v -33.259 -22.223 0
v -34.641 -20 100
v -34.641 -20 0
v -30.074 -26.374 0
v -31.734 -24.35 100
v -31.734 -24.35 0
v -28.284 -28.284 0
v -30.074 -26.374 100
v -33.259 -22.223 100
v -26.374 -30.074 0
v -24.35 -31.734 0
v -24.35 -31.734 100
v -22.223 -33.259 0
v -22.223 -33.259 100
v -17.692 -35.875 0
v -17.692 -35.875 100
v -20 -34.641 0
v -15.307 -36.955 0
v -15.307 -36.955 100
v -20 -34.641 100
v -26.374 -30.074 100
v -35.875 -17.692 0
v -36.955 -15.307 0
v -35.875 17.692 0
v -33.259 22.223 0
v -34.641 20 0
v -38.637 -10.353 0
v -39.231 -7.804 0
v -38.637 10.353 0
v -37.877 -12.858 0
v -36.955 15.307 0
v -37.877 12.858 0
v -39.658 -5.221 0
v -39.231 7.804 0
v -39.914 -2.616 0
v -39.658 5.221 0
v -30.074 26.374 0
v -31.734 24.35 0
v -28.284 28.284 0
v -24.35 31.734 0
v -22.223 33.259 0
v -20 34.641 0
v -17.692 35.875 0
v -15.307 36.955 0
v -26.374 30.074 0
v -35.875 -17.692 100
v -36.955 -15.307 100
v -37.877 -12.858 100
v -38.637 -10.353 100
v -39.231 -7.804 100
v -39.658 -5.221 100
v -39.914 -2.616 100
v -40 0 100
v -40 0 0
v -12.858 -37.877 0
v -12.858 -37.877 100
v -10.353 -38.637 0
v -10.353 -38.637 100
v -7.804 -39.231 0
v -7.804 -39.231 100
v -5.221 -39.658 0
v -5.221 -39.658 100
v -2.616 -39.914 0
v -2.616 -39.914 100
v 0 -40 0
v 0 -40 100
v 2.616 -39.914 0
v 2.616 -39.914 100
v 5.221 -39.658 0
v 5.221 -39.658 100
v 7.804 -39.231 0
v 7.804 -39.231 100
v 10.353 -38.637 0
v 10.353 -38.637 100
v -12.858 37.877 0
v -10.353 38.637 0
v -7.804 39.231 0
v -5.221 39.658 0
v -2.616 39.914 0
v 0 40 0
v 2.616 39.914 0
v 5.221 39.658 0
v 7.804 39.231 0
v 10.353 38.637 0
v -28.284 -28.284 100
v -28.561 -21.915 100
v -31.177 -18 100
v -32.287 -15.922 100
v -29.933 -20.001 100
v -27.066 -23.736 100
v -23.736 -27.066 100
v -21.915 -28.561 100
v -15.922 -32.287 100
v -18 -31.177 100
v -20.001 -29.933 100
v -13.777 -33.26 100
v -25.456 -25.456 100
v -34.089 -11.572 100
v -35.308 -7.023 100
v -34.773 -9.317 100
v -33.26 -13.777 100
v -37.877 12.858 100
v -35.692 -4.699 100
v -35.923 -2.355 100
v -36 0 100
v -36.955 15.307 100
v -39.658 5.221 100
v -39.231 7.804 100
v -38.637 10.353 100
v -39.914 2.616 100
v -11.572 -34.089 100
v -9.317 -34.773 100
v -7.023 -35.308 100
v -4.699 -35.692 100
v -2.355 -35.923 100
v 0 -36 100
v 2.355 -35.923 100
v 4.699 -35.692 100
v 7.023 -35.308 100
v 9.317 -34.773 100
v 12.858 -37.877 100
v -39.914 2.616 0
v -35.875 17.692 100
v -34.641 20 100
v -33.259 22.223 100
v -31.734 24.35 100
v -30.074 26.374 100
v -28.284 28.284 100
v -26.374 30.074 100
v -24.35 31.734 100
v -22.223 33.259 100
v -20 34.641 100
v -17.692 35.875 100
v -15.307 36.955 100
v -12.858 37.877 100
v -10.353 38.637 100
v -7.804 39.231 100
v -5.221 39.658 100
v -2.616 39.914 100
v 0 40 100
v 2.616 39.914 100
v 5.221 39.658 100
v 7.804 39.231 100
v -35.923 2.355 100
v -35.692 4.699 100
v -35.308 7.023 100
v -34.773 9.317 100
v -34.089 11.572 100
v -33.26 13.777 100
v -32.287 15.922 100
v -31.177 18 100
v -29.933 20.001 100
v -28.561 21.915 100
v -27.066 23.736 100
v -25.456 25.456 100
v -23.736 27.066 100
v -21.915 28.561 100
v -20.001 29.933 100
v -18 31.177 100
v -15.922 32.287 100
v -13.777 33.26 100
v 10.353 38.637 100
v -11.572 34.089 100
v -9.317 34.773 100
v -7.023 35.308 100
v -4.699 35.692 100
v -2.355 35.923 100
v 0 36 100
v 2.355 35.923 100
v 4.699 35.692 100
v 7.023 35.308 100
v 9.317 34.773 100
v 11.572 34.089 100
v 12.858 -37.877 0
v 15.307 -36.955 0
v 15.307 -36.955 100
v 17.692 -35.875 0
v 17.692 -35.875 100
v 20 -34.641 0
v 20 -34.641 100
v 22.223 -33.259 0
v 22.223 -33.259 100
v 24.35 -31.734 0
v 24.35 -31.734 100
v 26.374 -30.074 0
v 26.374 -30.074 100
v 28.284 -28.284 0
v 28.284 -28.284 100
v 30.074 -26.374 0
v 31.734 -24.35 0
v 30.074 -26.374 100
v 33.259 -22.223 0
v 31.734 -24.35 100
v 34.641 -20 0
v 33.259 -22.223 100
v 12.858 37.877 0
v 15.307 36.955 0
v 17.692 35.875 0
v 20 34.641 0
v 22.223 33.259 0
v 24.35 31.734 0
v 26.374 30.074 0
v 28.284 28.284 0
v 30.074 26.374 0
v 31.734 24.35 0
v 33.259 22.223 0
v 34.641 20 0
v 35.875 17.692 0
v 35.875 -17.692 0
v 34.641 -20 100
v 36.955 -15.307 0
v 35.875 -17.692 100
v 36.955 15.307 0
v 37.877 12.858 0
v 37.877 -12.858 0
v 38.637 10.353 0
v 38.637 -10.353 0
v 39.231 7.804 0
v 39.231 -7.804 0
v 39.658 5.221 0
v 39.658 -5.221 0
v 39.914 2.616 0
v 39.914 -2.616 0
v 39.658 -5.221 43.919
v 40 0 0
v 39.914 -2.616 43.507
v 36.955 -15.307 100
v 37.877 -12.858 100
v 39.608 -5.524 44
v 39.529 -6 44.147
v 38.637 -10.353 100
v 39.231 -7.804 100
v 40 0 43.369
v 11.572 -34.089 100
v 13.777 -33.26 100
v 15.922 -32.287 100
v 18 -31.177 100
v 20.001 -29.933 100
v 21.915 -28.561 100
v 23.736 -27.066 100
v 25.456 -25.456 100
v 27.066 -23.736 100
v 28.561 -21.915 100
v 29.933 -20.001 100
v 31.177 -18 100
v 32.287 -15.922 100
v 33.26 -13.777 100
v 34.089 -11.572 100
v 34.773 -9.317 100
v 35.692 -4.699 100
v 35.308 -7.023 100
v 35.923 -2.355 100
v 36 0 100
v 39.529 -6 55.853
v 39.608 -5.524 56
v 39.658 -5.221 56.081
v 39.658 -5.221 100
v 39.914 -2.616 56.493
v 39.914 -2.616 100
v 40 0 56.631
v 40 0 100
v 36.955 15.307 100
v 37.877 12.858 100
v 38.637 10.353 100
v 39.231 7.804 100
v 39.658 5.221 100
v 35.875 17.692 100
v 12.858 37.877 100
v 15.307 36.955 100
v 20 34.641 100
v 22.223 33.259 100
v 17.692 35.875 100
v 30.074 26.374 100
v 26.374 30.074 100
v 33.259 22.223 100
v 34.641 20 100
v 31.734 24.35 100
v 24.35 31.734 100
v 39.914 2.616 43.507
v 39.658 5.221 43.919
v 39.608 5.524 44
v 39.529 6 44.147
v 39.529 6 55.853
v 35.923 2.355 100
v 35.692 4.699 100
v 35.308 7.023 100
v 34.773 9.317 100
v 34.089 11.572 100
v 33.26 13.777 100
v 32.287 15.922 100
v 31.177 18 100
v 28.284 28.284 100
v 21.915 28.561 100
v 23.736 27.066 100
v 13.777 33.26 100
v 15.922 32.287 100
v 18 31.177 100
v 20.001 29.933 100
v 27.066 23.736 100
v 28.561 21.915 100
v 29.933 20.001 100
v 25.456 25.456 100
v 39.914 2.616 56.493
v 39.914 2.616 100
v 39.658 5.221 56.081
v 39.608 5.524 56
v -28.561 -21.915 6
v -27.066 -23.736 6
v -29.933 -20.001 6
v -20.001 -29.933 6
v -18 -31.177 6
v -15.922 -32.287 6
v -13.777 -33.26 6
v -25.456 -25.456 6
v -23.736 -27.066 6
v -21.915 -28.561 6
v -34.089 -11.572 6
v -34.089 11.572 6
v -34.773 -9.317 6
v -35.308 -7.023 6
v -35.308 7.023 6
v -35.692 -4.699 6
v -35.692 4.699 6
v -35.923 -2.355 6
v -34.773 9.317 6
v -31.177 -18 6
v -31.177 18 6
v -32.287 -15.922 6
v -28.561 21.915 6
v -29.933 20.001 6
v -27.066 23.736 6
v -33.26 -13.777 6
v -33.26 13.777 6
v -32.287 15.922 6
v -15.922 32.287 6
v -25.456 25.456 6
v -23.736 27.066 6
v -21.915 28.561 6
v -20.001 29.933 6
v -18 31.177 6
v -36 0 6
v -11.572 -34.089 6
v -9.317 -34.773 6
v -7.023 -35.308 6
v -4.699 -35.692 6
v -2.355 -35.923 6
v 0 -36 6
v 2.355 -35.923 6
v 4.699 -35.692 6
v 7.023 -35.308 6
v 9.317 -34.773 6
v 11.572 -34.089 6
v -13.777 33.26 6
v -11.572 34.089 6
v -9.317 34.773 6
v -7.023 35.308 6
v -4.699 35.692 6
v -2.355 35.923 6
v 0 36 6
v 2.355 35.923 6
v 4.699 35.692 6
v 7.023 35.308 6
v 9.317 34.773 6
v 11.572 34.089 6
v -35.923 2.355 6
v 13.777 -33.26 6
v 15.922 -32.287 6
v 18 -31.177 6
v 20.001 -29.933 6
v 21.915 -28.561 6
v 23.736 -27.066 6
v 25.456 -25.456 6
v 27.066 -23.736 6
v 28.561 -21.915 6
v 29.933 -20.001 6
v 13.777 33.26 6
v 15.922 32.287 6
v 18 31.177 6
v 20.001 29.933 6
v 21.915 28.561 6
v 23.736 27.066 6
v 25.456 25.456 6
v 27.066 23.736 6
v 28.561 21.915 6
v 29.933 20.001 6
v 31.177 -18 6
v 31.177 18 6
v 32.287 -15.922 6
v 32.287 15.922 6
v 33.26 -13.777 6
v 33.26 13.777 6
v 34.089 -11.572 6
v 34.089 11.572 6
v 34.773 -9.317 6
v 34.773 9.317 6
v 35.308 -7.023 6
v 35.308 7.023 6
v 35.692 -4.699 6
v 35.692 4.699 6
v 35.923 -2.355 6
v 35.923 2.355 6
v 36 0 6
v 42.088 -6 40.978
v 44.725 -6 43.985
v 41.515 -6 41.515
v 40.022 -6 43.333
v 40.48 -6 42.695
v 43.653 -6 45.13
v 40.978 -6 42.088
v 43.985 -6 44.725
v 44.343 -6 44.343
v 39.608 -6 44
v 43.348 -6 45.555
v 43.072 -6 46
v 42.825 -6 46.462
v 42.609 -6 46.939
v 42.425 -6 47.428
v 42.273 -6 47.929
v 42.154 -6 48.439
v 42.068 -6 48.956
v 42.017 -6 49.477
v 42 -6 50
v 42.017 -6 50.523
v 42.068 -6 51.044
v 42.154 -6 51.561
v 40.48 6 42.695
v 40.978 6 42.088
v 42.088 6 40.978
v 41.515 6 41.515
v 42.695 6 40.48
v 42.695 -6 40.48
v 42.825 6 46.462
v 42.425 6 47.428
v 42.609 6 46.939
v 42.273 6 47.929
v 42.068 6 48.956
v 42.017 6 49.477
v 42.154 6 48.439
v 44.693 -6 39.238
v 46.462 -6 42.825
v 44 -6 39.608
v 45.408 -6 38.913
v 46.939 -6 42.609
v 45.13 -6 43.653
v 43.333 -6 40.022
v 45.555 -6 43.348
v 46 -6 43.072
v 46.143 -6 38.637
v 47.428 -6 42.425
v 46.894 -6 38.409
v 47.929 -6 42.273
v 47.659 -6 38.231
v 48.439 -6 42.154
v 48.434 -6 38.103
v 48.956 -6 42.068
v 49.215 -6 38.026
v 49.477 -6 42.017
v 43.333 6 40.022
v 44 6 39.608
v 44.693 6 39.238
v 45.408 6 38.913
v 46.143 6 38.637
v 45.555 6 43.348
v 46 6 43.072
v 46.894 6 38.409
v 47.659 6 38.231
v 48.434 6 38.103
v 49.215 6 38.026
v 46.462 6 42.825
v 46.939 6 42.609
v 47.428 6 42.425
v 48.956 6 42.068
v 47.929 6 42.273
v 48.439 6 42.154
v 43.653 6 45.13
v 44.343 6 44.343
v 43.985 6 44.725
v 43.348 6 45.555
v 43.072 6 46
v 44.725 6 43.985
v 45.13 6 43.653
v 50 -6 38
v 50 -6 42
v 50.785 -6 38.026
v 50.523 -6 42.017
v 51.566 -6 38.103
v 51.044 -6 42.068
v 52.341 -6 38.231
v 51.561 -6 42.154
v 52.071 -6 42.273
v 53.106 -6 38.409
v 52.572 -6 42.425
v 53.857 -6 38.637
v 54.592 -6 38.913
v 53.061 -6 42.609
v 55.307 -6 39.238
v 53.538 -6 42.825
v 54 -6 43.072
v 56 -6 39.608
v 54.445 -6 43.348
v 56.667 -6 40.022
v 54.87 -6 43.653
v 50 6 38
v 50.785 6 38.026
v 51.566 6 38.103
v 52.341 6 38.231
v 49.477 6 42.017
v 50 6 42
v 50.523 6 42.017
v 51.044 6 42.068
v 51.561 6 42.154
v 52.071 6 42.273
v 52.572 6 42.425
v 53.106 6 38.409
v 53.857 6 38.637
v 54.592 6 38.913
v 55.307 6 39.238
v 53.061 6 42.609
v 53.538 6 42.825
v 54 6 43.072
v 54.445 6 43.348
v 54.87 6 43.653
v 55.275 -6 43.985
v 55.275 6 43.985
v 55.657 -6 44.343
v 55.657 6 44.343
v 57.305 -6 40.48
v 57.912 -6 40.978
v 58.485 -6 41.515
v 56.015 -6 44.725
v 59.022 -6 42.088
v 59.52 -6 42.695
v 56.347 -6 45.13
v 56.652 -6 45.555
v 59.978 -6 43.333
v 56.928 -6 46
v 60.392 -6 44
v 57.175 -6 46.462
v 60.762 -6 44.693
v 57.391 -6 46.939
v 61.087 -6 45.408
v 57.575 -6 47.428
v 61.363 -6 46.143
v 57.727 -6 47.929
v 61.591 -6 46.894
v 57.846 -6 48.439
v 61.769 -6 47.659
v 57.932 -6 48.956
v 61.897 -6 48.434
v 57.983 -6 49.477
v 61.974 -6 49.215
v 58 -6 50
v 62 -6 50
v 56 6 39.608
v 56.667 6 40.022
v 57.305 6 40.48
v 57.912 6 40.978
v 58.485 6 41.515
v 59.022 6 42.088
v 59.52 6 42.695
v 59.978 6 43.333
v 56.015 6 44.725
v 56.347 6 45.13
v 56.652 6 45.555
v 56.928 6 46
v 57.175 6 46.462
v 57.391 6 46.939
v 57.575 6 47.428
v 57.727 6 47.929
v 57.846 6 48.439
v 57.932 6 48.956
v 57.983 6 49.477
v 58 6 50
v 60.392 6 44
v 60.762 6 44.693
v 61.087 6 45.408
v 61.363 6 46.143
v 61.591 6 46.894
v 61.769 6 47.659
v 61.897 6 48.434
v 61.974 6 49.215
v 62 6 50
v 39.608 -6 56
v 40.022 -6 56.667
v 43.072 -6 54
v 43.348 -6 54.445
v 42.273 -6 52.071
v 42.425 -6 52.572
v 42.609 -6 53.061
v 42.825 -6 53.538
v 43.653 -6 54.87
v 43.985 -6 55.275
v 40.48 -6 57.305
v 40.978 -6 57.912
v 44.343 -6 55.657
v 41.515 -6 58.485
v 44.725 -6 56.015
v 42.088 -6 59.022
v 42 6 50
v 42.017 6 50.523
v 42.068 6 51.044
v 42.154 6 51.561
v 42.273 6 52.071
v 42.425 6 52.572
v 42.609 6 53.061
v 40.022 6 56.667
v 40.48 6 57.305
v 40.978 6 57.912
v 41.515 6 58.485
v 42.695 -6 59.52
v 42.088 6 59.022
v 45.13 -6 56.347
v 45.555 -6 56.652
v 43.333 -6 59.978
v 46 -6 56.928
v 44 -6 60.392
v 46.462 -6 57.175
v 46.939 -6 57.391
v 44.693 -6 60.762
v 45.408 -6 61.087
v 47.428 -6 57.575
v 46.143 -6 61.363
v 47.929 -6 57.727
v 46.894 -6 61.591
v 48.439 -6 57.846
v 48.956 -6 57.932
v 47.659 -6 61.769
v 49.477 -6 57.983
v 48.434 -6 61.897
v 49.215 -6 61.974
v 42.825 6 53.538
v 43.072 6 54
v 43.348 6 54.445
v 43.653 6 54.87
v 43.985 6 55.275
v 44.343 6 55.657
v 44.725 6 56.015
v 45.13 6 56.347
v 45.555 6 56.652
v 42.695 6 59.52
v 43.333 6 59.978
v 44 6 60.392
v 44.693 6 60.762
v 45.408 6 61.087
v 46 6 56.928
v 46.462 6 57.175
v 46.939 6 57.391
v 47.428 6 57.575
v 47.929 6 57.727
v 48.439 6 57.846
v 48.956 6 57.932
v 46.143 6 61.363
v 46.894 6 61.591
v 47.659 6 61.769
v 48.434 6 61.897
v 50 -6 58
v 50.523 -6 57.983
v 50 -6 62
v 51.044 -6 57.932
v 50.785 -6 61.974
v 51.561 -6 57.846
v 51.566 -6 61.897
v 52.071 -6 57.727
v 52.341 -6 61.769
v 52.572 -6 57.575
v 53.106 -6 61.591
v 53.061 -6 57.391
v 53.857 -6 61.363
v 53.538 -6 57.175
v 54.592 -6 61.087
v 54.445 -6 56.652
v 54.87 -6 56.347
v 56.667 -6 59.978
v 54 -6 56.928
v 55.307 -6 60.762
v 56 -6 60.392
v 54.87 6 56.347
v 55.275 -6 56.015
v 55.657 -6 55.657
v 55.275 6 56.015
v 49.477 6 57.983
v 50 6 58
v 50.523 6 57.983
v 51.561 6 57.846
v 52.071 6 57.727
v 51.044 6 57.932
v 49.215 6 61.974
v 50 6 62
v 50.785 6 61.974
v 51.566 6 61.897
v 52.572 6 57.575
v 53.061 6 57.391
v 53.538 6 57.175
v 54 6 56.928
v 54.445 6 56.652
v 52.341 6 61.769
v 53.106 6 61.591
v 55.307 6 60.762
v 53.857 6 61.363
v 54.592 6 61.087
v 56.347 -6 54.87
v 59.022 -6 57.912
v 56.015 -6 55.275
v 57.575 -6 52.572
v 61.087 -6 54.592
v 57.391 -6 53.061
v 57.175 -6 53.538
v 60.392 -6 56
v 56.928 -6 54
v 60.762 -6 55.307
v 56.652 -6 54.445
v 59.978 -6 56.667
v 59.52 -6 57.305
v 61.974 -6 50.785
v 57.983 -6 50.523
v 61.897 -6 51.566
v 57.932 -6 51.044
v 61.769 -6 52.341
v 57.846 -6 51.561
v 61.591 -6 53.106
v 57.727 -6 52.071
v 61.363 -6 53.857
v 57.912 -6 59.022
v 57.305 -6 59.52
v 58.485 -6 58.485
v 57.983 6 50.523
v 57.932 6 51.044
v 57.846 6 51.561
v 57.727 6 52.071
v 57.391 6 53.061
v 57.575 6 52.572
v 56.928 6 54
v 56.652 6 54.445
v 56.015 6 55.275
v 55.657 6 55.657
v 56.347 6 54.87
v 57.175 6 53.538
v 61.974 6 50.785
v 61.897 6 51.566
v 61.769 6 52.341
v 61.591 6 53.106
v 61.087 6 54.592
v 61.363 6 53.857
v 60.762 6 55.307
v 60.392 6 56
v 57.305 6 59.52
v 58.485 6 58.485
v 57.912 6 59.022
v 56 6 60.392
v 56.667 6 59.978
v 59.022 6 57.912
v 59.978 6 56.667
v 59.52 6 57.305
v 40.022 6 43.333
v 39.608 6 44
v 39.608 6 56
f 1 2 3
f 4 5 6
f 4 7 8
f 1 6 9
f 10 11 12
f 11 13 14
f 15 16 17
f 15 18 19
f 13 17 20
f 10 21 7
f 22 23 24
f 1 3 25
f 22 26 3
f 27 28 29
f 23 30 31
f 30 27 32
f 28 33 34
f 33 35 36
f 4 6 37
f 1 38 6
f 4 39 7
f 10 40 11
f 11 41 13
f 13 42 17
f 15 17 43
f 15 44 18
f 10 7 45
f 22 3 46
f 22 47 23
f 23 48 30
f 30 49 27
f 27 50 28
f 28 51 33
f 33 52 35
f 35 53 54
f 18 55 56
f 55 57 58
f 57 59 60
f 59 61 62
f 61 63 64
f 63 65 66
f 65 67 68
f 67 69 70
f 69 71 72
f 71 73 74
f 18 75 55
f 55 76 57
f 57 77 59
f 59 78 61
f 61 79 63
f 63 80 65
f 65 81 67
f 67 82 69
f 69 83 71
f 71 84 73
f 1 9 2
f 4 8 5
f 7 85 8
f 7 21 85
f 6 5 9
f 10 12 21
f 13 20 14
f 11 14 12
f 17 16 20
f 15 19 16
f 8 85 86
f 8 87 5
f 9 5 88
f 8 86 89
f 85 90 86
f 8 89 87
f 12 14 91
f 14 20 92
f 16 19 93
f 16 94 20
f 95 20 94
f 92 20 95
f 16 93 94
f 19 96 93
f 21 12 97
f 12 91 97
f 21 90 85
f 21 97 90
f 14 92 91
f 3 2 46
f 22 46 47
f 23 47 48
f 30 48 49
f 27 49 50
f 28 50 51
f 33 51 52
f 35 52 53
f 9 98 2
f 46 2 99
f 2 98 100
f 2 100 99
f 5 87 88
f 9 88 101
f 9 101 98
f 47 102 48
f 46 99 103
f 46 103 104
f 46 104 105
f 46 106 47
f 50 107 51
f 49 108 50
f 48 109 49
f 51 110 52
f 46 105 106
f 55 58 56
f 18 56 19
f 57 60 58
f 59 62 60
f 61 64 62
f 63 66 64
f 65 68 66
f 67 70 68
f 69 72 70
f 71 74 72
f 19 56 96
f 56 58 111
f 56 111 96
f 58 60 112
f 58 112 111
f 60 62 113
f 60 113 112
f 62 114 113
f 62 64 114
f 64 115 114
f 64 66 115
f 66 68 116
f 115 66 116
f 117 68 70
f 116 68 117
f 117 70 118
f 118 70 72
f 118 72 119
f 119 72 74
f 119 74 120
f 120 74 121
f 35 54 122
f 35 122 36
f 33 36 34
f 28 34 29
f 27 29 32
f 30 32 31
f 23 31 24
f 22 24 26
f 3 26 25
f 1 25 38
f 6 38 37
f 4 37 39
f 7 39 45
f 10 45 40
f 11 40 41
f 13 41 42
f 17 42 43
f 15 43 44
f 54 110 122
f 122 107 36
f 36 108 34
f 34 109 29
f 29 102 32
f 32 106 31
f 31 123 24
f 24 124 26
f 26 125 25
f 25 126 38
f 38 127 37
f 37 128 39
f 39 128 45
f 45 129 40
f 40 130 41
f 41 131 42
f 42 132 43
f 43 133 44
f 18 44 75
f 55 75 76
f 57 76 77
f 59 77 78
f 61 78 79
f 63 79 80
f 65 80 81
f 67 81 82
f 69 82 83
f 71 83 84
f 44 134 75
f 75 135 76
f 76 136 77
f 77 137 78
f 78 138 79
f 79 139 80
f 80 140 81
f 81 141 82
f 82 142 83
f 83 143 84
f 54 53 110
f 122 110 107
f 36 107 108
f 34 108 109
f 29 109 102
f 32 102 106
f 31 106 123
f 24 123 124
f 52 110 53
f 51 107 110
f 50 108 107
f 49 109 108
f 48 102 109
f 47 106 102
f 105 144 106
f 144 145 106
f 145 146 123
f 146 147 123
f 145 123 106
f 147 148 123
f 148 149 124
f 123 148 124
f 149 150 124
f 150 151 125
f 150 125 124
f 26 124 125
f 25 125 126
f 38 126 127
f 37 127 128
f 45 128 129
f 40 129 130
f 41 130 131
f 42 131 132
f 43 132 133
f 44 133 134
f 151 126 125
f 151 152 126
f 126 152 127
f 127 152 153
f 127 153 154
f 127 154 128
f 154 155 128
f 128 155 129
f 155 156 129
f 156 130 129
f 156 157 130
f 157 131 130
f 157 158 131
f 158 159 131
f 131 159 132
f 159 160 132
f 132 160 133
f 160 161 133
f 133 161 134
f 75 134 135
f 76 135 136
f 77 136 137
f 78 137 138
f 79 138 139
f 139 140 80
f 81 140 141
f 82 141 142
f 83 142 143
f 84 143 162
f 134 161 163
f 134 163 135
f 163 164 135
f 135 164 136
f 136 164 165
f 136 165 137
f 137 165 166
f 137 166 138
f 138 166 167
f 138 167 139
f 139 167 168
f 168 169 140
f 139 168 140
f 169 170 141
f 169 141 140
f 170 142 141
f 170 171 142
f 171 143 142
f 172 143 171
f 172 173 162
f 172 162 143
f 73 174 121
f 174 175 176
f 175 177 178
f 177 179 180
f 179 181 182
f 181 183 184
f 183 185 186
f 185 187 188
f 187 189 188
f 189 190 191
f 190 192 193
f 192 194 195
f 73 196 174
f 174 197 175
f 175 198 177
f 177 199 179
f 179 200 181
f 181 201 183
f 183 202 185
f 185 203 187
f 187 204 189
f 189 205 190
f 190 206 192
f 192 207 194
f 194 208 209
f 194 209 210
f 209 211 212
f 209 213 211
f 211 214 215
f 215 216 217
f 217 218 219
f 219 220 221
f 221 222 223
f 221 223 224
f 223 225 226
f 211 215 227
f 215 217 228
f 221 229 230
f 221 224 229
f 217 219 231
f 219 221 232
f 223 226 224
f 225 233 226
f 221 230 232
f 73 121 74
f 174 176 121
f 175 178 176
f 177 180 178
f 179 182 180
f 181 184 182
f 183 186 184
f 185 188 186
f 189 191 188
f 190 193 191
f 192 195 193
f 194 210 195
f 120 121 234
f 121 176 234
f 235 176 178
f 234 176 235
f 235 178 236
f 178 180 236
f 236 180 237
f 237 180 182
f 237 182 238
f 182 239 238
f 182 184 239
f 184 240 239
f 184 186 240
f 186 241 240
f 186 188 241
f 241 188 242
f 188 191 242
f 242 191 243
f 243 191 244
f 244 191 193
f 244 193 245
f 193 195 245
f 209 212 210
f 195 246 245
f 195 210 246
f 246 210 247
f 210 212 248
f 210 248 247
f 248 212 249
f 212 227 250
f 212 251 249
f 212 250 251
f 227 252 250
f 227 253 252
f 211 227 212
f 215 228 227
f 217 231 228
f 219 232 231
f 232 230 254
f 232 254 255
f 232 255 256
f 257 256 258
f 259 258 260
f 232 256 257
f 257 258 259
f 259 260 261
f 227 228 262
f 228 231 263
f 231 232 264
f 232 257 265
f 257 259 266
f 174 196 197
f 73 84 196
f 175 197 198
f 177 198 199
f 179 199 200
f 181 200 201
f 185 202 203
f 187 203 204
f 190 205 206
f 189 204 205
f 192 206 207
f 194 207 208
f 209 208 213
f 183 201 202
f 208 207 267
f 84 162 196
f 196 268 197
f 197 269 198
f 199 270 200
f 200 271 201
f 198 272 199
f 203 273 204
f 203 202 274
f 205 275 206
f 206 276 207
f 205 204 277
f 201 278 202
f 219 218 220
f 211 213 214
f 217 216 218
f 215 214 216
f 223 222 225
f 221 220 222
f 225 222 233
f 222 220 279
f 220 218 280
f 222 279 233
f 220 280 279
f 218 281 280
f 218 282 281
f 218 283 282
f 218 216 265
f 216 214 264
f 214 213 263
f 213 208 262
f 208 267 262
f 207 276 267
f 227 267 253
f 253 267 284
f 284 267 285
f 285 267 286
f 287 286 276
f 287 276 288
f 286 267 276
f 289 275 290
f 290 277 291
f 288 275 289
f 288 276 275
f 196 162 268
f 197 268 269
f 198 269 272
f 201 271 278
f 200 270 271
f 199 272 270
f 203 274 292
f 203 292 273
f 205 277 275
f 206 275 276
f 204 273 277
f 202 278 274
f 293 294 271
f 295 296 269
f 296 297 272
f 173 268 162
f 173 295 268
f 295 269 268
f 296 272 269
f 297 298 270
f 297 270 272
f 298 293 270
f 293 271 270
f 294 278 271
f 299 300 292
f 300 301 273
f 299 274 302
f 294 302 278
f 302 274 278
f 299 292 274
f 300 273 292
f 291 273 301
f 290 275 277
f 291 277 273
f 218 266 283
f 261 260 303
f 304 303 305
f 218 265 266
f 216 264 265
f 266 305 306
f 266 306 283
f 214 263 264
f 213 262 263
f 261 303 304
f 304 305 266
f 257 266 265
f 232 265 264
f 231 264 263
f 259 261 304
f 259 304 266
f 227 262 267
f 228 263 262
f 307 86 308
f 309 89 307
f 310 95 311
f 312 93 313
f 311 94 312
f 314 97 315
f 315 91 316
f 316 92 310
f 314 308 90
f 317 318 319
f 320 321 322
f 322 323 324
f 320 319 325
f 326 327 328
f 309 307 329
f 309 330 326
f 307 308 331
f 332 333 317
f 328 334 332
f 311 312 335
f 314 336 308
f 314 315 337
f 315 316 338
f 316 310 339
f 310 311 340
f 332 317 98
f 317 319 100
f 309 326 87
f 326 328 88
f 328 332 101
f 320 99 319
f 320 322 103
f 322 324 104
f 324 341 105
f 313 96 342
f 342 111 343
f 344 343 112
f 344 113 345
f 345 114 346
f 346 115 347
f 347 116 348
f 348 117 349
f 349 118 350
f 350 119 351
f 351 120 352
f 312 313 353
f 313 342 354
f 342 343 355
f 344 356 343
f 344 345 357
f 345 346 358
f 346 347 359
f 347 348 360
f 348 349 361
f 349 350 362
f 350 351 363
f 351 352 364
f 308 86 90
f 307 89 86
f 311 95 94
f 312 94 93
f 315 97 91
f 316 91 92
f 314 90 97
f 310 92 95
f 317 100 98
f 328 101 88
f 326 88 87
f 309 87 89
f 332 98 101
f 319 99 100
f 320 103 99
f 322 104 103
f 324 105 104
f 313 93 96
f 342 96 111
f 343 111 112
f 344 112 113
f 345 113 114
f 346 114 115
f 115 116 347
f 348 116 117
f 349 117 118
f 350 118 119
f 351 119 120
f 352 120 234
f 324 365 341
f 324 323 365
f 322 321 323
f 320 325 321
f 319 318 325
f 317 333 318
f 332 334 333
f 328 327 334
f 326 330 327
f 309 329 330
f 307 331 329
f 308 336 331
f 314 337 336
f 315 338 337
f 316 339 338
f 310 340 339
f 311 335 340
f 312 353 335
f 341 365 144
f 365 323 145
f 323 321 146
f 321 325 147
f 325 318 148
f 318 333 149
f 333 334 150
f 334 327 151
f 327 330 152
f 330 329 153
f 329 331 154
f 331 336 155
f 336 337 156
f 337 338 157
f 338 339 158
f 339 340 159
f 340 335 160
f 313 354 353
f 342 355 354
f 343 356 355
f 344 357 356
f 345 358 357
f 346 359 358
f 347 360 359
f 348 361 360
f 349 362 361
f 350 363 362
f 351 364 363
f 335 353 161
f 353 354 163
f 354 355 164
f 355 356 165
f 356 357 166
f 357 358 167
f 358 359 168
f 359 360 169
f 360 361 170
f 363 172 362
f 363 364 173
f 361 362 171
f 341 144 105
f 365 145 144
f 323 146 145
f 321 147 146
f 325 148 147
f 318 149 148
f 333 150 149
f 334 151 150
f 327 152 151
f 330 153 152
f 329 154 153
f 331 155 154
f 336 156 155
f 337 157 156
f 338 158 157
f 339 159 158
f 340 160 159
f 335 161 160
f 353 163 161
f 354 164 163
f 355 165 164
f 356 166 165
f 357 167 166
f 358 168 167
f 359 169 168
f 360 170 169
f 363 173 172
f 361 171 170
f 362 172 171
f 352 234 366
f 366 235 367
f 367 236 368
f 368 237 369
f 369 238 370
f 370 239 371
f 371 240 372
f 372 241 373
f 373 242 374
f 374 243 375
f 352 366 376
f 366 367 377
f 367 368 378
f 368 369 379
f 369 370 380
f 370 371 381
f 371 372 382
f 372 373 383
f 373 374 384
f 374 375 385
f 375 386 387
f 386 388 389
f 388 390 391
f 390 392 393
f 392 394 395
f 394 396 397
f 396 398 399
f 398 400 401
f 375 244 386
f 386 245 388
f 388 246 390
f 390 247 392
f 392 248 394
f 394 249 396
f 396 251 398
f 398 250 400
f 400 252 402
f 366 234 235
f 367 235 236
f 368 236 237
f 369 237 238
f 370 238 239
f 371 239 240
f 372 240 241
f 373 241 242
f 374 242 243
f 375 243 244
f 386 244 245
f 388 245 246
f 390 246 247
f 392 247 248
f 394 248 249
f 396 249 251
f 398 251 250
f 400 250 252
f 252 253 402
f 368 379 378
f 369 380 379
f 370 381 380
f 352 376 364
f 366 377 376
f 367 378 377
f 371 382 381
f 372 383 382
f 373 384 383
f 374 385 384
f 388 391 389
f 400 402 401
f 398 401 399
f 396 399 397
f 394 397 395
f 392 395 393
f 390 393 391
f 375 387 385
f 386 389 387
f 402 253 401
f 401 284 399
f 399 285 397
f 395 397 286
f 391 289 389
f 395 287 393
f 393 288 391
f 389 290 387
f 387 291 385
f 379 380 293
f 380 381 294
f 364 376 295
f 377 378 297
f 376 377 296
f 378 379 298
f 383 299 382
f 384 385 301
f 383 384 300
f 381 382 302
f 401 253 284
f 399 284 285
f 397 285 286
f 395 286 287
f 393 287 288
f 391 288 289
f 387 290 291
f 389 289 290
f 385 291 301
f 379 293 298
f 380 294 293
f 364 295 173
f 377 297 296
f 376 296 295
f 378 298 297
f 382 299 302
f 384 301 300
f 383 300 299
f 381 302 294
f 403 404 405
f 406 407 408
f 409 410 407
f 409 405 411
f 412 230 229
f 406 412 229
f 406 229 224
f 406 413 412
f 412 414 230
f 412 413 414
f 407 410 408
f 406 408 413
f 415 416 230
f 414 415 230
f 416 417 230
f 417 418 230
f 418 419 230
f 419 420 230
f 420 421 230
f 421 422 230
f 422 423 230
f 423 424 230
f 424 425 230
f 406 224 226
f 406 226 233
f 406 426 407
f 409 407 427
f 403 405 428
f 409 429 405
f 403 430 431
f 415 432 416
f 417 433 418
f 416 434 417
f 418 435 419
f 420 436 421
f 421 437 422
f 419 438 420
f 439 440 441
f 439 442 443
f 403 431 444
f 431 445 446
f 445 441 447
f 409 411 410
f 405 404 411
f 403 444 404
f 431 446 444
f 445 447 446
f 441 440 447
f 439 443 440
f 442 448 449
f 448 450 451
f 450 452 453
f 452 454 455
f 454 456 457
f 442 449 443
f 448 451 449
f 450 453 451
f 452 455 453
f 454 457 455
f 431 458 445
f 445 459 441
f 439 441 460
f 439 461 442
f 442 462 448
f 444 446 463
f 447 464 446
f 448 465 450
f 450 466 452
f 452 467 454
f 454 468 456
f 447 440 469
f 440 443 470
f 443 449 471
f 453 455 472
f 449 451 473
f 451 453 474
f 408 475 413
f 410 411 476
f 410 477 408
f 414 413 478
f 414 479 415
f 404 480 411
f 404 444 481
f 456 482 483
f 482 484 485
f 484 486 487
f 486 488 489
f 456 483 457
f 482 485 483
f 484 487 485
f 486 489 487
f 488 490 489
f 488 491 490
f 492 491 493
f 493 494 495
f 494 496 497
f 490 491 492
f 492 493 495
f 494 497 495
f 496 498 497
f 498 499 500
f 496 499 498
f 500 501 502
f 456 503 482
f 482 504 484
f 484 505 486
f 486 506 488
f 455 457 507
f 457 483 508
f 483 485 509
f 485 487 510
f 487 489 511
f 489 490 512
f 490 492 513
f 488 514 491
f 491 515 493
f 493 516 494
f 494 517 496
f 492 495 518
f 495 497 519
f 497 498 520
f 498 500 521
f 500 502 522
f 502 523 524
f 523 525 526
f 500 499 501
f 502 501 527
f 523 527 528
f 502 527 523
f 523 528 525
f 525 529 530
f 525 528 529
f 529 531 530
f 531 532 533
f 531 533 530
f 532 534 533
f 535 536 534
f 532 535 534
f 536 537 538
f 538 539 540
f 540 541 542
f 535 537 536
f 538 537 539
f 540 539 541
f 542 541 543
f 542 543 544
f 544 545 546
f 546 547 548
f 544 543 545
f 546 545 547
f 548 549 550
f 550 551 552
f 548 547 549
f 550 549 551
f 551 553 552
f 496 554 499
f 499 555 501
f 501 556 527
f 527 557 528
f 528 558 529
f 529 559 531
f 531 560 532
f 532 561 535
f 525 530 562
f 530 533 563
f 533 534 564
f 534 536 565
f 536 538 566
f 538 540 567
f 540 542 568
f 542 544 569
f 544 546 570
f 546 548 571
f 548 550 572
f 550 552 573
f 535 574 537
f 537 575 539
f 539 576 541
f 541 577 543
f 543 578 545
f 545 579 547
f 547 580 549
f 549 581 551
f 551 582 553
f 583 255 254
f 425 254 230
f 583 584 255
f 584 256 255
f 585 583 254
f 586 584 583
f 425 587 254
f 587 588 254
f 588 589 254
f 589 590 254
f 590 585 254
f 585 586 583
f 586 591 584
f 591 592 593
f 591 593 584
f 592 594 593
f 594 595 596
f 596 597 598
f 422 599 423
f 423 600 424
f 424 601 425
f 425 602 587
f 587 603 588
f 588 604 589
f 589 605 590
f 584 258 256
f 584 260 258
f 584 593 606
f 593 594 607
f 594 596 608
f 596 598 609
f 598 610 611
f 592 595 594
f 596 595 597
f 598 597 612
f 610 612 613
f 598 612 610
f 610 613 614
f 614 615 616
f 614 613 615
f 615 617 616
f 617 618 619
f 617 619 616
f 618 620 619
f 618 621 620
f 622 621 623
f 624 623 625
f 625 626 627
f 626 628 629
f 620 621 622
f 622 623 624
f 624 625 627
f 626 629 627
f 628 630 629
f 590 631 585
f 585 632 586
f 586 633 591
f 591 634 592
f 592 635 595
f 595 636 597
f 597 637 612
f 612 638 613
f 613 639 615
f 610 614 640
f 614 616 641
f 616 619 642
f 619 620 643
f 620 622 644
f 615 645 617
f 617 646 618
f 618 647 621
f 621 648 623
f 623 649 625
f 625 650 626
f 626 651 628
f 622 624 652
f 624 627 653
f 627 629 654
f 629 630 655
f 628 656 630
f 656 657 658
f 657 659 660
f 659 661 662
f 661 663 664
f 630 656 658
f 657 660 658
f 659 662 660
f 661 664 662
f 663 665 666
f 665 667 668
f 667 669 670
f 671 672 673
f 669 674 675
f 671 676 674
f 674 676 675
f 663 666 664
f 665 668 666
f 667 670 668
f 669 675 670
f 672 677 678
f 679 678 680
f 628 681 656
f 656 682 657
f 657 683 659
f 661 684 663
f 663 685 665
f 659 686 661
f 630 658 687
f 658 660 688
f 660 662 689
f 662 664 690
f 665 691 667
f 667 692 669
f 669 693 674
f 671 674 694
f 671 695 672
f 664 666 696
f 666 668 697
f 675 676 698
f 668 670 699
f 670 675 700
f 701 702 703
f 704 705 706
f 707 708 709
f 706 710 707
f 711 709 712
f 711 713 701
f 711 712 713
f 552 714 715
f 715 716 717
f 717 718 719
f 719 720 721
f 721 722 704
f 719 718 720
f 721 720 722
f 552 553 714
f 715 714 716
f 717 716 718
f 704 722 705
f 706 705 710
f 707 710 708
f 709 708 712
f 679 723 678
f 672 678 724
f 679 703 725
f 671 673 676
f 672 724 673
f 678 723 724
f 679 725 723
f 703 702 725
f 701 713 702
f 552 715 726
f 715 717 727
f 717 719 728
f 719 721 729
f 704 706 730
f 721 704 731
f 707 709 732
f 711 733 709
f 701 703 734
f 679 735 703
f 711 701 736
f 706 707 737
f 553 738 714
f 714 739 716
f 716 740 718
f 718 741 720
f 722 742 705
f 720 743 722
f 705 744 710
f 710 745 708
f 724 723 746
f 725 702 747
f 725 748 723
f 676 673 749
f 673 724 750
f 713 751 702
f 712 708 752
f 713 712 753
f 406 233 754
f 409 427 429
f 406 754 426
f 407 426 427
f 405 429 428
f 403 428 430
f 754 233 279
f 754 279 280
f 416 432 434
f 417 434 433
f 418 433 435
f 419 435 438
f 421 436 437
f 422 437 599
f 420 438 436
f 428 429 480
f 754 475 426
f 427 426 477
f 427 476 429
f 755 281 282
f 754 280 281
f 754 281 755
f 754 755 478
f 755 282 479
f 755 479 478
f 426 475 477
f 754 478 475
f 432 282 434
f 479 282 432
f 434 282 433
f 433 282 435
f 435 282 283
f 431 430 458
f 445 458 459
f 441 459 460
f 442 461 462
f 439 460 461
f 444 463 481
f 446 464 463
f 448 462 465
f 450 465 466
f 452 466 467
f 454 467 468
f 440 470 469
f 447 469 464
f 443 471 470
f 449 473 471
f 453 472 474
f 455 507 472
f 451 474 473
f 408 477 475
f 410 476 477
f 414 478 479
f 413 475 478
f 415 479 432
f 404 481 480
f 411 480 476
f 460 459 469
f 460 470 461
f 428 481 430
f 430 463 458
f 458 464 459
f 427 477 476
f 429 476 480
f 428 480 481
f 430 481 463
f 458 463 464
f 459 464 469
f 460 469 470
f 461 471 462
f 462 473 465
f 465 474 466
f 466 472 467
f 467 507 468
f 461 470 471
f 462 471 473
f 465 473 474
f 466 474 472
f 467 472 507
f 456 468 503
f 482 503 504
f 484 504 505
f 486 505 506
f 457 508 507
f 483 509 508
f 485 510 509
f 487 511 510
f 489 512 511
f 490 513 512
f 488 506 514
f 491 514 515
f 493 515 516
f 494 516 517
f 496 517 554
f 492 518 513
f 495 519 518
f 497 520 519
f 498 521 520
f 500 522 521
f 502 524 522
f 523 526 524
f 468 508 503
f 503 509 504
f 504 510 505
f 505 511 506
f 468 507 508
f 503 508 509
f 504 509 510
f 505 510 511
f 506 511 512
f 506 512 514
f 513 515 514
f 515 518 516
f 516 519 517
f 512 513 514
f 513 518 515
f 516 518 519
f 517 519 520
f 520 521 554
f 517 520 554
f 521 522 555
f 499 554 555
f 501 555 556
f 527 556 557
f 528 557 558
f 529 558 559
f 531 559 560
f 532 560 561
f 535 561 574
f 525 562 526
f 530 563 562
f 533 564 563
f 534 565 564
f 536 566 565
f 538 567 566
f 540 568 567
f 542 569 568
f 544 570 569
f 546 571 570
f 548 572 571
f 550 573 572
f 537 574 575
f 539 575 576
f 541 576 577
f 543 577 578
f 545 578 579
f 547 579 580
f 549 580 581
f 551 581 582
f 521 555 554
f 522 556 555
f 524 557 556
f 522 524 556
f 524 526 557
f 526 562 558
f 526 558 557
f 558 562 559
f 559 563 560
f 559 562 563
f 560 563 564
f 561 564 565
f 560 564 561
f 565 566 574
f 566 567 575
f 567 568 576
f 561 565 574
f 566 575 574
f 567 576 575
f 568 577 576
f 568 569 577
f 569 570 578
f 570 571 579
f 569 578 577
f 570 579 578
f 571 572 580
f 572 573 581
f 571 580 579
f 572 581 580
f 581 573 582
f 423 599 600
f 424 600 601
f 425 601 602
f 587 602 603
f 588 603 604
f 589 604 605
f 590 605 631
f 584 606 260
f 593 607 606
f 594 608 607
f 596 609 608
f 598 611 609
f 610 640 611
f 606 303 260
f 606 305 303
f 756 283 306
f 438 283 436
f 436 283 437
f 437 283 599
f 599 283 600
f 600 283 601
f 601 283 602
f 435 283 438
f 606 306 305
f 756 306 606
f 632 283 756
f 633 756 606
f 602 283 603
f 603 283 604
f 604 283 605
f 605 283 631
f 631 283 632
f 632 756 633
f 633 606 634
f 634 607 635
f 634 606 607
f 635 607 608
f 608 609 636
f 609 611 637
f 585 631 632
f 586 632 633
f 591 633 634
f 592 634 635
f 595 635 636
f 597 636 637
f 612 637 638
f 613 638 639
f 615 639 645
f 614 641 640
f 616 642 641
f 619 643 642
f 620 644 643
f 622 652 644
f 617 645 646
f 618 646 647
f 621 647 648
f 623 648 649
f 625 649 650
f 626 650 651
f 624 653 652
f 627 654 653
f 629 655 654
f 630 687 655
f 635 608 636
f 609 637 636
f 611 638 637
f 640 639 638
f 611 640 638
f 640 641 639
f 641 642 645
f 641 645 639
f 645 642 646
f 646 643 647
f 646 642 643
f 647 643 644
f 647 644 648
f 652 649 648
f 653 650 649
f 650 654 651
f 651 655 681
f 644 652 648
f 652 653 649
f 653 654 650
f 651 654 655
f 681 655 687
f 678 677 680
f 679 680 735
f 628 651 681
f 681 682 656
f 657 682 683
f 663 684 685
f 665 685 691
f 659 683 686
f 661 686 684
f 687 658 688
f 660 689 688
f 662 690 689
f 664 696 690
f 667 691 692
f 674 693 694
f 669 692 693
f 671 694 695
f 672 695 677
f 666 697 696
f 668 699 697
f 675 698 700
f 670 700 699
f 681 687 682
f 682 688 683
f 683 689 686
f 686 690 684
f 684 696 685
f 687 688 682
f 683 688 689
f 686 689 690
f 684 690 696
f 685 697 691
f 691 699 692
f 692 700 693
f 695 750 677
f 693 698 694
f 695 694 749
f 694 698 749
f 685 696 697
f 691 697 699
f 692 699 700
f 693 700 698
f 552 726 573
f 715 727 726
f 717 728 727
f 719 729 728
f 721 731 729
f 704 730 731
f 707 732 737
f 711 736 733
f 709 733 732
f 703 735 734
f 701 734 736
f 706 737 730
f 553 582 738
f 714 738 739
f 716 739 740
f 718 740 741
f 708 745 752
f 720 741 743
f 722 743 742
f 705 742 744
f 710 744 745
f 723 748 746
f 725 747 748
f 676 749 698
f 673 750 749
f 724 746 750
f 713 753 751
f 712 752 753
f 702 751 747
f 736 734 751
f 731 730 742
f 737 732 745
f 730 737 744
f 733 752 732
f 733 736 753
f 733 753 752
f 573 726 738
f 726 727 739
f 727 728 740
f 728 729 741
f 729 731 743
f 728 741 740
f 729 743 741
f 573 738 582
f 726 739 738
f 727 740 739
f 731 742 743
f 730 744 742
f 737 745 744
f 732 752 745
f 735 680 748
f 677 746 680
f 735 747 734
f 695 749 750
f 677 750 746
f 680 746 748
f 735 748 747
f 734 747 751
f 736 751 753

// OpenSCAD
$fn = 96;

cup_outer_radius = 40;
cup_height = 100;
wall_thickness = 4;
bottom_thickness = 6;

handle_outer_radius = 12;
handle_inner_radius = 8;
handle_thickness = 12;
handle_center_x = 50;
handle_center_z = cup_height / 2;

union() {
    difference() {
        cylinder(h = cup_height, r = cup_outer_radius);

        translate([0, 0, bottom_thickness])
            cylinder(
                h = cup_height - bottom_thickness + 1,
                r = cup_outer_radius - wall_thickness
            );
    }

    translate([handle_center_x, 0, handle_center_z])
        rotate([90, 0, 0])
            linear_extrude(height = handle_thickness, center = true)
                difference() {
                    circle(r = handle_outer_radius);
                    circle(r = handle_inner_radius);
                }
}
